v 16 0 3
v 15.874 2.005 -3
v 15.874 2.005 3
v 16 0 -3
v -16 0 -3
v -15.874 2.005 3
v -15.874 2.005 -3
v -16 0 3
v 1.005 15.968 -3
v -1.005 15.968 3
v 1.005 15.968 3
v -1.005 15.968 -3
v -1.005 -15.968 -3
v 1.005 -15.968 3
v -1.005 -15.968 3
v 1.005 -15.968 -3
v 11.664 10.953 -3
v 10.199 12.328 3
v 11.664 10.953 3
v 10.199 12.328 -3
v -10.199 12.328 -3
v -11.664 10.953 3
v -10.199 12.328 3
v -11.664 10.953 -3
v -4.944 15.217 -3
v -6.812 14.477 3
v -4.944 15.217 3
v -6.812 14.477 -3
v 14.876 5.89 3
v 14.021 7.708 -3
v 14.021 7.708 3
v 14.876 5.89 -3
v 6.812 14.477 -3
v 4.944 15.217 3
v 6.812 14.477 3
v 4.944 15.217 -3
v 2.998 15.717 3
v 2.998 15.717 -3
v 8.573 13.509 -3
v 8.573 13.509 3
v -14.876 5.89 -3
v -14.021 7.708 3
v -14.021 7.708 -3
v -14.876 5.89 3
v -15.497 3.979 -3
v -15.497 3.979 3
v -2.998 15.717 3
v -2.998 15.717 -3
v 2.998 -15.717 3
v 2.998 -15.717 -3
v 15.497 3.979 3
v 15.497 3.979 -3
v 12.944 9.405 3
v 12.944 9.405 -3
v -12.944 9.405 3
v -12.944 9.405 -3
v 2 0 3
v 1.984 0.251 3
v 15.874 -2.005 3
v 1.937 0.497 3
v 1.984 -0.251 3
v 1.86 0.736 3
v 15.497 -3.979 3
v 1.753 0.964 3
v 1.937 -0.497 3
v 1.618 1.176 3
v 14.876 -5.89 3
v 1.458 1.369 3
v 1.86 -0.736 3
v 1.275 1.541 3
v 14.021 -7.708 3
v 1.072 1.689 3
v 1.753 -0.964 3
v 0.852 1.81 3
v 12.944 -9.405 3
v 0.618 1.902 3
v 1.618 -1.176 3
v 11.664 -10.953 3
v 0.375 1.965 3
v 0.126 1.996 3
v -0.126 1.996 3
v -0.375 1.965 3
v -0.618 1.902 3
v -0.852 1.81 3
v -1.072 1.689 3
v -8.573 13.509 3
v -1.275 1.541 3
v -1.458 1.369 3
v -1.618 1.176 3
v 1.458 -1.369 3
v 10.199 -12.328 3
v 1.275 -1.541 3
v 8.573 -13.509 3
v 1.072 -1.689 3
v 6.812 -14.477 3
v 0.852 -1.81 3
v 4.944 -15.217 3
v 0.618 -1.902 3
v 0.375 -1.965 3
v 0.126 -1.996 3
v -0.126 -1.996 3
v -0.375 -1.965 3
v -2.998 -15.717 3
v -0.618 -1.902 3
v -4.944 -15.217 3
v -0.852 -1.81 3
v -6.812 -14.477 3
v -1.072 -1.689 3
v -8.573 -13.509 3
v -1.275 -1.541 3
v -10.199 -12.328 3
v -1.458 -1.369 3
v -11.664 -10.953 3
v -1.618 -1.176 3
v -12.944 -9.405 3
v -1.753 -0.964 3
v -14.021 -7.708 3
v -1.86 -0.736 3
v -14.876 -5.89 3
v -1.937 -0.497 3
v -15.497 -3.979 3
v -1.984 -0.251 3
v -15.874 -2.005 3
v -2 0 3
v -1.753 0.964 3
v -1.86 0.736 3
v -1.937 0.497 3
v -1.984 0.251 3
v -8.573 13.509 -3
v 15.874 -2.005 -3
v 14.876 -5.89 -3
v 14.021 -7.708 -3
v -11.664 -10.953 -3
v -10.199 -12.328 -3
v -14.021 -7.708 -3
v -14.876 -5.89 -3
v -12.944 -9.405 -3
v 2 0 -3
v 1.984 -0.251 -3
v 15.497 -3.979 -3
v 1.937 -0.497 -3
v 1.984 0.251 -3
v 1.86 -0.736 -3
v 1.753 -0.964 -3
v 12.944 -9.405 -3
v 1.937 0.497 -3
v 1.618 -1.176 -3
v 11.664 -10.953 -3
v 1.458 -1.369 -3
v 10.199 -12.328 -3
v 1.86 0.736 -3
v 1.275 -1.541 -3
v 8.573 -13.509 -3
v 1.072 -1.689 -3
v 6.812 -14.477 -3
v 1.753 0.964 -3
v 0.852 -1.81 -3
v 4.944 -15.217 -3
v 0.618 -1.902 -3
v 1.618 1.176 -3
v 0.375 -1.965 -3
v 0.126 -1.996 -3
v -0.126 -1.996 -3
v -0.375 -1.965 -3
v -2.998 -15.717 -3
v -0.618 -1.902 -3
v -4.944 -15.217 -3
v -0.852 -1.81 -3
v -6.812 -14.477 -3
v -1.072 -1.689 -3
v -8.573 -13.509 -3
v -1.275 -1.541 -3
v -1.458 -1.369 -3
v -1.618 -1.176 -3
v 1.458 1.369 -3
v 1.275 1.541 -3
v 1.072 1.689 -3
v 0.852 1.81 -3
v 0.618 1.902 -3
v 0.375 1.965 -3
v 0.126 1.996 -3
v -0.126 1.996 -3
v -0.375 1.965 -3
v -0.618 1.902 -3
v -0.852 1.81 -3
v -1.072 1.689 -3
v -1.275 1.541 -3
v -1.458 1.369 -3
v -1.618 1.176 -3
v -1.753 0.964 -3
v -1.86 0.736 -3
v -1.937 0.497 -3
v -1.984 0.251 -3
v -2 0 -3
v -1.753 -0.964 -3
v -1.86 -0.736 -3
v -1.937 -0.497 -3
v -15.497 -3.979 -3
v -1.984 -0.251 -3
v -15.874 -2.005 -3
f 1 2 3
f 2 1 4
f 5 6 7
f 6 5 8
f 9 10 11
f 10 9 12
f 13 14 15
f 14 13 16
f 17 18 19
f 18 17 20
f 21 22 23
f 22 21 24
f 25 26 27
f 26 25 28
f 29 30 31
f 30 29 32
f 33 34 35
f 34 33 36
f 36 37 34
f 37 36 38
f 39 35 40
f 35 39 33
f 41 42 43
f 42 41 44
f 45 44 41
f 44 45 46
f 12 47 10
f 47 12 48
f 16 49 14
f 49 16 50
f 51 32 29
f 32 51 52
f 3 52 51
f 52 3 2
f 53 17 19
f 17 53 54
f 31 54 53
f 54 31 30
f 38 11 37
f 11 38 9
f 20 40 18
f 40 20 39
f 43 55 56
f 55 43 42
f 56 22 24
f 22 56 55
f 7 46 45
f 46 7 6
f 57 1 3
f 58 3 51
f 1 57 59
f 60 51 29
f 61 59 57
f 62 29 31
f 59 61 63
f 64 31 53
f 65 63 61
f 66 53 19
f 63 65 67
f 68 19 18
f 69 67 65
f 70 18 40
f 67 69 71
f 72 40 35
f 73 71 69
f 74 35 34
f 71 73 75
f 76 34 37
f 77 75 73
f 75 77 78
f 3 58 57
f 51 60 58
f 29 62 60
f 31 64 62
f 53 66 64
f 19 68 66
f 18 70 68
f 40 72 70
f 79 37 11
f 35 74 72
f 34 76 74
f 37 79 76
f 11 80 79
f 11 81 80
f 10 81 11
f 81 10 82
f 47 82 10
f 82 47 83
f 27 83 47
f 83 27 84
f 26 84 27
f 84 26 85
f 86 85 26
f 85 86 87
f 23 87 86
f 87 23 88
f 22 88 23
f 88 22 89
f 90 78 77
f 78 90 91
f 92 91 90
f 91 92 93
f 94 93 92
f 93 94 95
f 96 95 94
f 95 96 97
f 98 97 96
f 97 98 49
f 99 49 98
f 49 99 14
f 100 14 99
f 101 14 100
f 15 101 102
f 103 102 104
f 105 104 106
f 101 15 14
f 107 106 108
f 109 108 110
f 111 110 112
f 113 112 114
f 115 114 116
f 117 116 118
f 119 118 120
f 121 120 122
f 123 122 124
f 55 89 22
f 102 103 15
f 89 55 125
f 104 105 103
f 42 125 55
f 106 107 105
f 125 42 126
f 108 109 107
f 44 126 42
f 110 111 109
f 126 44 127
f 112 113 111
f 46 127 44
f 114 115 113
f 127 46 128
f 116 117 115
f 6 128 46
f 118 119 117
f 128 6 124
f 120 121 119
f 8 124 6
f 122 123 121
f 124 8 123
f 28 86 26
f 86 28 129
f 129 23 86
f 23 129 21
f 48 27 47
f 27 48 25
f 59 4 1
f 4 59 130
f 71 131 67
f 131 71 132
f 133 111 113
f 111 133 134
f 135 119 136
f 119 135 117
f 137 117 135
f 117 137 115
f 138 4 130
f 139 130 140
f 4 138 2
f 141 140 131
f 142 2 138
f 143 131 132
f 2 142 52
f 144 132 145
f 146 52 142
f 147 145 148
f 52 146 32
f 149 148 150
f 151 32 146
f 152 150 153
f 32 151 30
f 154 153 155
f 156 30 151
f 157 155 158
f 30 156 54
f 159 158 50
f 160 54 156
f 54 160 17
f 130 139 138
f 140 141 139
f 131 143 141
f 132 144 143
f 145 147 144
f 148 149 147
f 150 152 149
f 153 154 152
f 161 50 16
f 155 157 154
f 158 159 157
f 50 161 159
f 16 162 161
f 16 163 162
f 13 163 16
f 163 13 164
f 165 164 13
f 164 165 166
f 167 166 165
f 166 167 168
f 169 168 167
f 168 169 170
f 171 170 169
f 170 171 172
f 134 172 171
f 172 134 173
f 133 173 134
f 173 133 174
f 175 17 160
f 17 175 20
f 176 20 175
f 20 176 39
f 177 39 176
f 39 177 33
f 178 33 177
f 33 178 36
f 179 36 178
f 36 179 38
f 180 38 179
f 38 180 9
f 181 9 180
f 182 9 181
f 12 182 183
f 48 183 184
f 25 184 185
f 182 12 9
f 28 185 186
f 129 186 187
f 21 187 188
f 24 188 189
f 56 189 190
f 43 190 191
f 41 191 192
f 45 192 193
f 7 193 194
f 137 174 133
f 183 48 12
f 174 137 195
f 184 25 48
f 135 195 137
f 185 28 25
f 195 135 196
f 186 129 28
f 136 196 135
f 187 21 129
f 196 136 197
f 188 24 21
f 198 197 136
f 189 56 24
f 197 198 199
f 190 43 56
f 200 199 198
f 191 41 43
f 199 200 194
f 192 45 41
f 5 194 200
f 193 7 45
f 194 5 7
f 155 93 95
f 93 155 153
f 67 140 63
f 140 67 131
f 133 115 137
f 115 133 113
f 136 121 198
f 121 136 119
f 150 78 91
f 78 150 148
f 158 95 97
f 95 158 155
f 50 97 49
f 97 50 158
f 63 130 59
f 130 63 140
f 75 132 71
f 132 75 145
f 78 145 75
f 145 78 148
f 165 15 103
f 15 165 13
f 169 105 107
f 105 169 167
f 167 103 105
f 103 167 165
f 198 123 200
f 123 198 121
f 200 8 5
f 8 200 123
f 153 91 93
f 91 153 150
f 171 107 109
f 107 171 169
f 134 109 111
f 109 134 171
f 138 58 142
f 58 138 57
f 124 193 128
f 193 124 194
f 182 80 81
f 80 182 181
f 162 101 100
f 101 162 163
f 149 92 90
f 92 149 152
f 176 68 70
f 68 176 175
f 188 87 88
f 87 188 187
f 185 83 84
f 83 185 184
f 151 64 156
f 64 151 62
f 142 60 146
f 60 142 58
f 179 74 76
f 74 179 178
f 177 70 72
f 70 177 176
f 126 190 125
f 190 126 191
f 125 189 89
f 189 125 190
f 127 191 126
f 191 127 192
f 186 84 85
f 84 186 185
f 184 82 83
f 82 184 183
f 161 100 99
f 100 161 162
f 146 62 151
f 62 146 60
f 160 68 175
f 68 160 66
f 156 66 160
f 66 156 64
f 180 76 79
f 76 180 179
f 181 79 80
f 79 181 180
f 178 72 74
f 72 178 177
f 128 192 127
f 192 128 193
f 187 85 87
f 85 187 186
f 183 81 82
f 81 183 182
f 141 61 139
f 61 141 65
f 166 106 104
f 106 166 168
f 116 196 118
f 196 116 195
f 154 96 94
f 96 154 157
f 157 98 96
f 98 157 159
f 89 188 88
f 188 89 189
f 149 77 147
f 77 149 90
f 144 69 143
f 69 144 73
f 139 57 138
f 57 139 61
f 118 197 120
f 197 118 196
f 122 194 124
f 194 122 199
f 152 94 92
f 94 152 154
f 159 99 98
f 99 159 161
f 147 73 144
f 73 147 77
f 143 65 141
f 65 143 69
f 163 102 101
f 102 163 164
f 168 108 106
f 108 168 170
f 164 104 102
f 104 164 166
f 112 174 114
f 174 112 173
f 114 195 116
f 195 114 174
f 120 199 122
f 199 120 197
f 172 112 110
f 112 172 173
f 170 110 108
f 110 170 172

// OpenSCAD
$fn = 50;


difference() {
	union() {
		translate(v = [0, 0, -3.0000000000]) {
			cylinder(h = 6, r = 16.0000000000);
		}
	}
	union() {
		translate(v = [0, 0, -100.0000000000]) {
			cylinder(h = 200, r = 2);
		}
	}
}
